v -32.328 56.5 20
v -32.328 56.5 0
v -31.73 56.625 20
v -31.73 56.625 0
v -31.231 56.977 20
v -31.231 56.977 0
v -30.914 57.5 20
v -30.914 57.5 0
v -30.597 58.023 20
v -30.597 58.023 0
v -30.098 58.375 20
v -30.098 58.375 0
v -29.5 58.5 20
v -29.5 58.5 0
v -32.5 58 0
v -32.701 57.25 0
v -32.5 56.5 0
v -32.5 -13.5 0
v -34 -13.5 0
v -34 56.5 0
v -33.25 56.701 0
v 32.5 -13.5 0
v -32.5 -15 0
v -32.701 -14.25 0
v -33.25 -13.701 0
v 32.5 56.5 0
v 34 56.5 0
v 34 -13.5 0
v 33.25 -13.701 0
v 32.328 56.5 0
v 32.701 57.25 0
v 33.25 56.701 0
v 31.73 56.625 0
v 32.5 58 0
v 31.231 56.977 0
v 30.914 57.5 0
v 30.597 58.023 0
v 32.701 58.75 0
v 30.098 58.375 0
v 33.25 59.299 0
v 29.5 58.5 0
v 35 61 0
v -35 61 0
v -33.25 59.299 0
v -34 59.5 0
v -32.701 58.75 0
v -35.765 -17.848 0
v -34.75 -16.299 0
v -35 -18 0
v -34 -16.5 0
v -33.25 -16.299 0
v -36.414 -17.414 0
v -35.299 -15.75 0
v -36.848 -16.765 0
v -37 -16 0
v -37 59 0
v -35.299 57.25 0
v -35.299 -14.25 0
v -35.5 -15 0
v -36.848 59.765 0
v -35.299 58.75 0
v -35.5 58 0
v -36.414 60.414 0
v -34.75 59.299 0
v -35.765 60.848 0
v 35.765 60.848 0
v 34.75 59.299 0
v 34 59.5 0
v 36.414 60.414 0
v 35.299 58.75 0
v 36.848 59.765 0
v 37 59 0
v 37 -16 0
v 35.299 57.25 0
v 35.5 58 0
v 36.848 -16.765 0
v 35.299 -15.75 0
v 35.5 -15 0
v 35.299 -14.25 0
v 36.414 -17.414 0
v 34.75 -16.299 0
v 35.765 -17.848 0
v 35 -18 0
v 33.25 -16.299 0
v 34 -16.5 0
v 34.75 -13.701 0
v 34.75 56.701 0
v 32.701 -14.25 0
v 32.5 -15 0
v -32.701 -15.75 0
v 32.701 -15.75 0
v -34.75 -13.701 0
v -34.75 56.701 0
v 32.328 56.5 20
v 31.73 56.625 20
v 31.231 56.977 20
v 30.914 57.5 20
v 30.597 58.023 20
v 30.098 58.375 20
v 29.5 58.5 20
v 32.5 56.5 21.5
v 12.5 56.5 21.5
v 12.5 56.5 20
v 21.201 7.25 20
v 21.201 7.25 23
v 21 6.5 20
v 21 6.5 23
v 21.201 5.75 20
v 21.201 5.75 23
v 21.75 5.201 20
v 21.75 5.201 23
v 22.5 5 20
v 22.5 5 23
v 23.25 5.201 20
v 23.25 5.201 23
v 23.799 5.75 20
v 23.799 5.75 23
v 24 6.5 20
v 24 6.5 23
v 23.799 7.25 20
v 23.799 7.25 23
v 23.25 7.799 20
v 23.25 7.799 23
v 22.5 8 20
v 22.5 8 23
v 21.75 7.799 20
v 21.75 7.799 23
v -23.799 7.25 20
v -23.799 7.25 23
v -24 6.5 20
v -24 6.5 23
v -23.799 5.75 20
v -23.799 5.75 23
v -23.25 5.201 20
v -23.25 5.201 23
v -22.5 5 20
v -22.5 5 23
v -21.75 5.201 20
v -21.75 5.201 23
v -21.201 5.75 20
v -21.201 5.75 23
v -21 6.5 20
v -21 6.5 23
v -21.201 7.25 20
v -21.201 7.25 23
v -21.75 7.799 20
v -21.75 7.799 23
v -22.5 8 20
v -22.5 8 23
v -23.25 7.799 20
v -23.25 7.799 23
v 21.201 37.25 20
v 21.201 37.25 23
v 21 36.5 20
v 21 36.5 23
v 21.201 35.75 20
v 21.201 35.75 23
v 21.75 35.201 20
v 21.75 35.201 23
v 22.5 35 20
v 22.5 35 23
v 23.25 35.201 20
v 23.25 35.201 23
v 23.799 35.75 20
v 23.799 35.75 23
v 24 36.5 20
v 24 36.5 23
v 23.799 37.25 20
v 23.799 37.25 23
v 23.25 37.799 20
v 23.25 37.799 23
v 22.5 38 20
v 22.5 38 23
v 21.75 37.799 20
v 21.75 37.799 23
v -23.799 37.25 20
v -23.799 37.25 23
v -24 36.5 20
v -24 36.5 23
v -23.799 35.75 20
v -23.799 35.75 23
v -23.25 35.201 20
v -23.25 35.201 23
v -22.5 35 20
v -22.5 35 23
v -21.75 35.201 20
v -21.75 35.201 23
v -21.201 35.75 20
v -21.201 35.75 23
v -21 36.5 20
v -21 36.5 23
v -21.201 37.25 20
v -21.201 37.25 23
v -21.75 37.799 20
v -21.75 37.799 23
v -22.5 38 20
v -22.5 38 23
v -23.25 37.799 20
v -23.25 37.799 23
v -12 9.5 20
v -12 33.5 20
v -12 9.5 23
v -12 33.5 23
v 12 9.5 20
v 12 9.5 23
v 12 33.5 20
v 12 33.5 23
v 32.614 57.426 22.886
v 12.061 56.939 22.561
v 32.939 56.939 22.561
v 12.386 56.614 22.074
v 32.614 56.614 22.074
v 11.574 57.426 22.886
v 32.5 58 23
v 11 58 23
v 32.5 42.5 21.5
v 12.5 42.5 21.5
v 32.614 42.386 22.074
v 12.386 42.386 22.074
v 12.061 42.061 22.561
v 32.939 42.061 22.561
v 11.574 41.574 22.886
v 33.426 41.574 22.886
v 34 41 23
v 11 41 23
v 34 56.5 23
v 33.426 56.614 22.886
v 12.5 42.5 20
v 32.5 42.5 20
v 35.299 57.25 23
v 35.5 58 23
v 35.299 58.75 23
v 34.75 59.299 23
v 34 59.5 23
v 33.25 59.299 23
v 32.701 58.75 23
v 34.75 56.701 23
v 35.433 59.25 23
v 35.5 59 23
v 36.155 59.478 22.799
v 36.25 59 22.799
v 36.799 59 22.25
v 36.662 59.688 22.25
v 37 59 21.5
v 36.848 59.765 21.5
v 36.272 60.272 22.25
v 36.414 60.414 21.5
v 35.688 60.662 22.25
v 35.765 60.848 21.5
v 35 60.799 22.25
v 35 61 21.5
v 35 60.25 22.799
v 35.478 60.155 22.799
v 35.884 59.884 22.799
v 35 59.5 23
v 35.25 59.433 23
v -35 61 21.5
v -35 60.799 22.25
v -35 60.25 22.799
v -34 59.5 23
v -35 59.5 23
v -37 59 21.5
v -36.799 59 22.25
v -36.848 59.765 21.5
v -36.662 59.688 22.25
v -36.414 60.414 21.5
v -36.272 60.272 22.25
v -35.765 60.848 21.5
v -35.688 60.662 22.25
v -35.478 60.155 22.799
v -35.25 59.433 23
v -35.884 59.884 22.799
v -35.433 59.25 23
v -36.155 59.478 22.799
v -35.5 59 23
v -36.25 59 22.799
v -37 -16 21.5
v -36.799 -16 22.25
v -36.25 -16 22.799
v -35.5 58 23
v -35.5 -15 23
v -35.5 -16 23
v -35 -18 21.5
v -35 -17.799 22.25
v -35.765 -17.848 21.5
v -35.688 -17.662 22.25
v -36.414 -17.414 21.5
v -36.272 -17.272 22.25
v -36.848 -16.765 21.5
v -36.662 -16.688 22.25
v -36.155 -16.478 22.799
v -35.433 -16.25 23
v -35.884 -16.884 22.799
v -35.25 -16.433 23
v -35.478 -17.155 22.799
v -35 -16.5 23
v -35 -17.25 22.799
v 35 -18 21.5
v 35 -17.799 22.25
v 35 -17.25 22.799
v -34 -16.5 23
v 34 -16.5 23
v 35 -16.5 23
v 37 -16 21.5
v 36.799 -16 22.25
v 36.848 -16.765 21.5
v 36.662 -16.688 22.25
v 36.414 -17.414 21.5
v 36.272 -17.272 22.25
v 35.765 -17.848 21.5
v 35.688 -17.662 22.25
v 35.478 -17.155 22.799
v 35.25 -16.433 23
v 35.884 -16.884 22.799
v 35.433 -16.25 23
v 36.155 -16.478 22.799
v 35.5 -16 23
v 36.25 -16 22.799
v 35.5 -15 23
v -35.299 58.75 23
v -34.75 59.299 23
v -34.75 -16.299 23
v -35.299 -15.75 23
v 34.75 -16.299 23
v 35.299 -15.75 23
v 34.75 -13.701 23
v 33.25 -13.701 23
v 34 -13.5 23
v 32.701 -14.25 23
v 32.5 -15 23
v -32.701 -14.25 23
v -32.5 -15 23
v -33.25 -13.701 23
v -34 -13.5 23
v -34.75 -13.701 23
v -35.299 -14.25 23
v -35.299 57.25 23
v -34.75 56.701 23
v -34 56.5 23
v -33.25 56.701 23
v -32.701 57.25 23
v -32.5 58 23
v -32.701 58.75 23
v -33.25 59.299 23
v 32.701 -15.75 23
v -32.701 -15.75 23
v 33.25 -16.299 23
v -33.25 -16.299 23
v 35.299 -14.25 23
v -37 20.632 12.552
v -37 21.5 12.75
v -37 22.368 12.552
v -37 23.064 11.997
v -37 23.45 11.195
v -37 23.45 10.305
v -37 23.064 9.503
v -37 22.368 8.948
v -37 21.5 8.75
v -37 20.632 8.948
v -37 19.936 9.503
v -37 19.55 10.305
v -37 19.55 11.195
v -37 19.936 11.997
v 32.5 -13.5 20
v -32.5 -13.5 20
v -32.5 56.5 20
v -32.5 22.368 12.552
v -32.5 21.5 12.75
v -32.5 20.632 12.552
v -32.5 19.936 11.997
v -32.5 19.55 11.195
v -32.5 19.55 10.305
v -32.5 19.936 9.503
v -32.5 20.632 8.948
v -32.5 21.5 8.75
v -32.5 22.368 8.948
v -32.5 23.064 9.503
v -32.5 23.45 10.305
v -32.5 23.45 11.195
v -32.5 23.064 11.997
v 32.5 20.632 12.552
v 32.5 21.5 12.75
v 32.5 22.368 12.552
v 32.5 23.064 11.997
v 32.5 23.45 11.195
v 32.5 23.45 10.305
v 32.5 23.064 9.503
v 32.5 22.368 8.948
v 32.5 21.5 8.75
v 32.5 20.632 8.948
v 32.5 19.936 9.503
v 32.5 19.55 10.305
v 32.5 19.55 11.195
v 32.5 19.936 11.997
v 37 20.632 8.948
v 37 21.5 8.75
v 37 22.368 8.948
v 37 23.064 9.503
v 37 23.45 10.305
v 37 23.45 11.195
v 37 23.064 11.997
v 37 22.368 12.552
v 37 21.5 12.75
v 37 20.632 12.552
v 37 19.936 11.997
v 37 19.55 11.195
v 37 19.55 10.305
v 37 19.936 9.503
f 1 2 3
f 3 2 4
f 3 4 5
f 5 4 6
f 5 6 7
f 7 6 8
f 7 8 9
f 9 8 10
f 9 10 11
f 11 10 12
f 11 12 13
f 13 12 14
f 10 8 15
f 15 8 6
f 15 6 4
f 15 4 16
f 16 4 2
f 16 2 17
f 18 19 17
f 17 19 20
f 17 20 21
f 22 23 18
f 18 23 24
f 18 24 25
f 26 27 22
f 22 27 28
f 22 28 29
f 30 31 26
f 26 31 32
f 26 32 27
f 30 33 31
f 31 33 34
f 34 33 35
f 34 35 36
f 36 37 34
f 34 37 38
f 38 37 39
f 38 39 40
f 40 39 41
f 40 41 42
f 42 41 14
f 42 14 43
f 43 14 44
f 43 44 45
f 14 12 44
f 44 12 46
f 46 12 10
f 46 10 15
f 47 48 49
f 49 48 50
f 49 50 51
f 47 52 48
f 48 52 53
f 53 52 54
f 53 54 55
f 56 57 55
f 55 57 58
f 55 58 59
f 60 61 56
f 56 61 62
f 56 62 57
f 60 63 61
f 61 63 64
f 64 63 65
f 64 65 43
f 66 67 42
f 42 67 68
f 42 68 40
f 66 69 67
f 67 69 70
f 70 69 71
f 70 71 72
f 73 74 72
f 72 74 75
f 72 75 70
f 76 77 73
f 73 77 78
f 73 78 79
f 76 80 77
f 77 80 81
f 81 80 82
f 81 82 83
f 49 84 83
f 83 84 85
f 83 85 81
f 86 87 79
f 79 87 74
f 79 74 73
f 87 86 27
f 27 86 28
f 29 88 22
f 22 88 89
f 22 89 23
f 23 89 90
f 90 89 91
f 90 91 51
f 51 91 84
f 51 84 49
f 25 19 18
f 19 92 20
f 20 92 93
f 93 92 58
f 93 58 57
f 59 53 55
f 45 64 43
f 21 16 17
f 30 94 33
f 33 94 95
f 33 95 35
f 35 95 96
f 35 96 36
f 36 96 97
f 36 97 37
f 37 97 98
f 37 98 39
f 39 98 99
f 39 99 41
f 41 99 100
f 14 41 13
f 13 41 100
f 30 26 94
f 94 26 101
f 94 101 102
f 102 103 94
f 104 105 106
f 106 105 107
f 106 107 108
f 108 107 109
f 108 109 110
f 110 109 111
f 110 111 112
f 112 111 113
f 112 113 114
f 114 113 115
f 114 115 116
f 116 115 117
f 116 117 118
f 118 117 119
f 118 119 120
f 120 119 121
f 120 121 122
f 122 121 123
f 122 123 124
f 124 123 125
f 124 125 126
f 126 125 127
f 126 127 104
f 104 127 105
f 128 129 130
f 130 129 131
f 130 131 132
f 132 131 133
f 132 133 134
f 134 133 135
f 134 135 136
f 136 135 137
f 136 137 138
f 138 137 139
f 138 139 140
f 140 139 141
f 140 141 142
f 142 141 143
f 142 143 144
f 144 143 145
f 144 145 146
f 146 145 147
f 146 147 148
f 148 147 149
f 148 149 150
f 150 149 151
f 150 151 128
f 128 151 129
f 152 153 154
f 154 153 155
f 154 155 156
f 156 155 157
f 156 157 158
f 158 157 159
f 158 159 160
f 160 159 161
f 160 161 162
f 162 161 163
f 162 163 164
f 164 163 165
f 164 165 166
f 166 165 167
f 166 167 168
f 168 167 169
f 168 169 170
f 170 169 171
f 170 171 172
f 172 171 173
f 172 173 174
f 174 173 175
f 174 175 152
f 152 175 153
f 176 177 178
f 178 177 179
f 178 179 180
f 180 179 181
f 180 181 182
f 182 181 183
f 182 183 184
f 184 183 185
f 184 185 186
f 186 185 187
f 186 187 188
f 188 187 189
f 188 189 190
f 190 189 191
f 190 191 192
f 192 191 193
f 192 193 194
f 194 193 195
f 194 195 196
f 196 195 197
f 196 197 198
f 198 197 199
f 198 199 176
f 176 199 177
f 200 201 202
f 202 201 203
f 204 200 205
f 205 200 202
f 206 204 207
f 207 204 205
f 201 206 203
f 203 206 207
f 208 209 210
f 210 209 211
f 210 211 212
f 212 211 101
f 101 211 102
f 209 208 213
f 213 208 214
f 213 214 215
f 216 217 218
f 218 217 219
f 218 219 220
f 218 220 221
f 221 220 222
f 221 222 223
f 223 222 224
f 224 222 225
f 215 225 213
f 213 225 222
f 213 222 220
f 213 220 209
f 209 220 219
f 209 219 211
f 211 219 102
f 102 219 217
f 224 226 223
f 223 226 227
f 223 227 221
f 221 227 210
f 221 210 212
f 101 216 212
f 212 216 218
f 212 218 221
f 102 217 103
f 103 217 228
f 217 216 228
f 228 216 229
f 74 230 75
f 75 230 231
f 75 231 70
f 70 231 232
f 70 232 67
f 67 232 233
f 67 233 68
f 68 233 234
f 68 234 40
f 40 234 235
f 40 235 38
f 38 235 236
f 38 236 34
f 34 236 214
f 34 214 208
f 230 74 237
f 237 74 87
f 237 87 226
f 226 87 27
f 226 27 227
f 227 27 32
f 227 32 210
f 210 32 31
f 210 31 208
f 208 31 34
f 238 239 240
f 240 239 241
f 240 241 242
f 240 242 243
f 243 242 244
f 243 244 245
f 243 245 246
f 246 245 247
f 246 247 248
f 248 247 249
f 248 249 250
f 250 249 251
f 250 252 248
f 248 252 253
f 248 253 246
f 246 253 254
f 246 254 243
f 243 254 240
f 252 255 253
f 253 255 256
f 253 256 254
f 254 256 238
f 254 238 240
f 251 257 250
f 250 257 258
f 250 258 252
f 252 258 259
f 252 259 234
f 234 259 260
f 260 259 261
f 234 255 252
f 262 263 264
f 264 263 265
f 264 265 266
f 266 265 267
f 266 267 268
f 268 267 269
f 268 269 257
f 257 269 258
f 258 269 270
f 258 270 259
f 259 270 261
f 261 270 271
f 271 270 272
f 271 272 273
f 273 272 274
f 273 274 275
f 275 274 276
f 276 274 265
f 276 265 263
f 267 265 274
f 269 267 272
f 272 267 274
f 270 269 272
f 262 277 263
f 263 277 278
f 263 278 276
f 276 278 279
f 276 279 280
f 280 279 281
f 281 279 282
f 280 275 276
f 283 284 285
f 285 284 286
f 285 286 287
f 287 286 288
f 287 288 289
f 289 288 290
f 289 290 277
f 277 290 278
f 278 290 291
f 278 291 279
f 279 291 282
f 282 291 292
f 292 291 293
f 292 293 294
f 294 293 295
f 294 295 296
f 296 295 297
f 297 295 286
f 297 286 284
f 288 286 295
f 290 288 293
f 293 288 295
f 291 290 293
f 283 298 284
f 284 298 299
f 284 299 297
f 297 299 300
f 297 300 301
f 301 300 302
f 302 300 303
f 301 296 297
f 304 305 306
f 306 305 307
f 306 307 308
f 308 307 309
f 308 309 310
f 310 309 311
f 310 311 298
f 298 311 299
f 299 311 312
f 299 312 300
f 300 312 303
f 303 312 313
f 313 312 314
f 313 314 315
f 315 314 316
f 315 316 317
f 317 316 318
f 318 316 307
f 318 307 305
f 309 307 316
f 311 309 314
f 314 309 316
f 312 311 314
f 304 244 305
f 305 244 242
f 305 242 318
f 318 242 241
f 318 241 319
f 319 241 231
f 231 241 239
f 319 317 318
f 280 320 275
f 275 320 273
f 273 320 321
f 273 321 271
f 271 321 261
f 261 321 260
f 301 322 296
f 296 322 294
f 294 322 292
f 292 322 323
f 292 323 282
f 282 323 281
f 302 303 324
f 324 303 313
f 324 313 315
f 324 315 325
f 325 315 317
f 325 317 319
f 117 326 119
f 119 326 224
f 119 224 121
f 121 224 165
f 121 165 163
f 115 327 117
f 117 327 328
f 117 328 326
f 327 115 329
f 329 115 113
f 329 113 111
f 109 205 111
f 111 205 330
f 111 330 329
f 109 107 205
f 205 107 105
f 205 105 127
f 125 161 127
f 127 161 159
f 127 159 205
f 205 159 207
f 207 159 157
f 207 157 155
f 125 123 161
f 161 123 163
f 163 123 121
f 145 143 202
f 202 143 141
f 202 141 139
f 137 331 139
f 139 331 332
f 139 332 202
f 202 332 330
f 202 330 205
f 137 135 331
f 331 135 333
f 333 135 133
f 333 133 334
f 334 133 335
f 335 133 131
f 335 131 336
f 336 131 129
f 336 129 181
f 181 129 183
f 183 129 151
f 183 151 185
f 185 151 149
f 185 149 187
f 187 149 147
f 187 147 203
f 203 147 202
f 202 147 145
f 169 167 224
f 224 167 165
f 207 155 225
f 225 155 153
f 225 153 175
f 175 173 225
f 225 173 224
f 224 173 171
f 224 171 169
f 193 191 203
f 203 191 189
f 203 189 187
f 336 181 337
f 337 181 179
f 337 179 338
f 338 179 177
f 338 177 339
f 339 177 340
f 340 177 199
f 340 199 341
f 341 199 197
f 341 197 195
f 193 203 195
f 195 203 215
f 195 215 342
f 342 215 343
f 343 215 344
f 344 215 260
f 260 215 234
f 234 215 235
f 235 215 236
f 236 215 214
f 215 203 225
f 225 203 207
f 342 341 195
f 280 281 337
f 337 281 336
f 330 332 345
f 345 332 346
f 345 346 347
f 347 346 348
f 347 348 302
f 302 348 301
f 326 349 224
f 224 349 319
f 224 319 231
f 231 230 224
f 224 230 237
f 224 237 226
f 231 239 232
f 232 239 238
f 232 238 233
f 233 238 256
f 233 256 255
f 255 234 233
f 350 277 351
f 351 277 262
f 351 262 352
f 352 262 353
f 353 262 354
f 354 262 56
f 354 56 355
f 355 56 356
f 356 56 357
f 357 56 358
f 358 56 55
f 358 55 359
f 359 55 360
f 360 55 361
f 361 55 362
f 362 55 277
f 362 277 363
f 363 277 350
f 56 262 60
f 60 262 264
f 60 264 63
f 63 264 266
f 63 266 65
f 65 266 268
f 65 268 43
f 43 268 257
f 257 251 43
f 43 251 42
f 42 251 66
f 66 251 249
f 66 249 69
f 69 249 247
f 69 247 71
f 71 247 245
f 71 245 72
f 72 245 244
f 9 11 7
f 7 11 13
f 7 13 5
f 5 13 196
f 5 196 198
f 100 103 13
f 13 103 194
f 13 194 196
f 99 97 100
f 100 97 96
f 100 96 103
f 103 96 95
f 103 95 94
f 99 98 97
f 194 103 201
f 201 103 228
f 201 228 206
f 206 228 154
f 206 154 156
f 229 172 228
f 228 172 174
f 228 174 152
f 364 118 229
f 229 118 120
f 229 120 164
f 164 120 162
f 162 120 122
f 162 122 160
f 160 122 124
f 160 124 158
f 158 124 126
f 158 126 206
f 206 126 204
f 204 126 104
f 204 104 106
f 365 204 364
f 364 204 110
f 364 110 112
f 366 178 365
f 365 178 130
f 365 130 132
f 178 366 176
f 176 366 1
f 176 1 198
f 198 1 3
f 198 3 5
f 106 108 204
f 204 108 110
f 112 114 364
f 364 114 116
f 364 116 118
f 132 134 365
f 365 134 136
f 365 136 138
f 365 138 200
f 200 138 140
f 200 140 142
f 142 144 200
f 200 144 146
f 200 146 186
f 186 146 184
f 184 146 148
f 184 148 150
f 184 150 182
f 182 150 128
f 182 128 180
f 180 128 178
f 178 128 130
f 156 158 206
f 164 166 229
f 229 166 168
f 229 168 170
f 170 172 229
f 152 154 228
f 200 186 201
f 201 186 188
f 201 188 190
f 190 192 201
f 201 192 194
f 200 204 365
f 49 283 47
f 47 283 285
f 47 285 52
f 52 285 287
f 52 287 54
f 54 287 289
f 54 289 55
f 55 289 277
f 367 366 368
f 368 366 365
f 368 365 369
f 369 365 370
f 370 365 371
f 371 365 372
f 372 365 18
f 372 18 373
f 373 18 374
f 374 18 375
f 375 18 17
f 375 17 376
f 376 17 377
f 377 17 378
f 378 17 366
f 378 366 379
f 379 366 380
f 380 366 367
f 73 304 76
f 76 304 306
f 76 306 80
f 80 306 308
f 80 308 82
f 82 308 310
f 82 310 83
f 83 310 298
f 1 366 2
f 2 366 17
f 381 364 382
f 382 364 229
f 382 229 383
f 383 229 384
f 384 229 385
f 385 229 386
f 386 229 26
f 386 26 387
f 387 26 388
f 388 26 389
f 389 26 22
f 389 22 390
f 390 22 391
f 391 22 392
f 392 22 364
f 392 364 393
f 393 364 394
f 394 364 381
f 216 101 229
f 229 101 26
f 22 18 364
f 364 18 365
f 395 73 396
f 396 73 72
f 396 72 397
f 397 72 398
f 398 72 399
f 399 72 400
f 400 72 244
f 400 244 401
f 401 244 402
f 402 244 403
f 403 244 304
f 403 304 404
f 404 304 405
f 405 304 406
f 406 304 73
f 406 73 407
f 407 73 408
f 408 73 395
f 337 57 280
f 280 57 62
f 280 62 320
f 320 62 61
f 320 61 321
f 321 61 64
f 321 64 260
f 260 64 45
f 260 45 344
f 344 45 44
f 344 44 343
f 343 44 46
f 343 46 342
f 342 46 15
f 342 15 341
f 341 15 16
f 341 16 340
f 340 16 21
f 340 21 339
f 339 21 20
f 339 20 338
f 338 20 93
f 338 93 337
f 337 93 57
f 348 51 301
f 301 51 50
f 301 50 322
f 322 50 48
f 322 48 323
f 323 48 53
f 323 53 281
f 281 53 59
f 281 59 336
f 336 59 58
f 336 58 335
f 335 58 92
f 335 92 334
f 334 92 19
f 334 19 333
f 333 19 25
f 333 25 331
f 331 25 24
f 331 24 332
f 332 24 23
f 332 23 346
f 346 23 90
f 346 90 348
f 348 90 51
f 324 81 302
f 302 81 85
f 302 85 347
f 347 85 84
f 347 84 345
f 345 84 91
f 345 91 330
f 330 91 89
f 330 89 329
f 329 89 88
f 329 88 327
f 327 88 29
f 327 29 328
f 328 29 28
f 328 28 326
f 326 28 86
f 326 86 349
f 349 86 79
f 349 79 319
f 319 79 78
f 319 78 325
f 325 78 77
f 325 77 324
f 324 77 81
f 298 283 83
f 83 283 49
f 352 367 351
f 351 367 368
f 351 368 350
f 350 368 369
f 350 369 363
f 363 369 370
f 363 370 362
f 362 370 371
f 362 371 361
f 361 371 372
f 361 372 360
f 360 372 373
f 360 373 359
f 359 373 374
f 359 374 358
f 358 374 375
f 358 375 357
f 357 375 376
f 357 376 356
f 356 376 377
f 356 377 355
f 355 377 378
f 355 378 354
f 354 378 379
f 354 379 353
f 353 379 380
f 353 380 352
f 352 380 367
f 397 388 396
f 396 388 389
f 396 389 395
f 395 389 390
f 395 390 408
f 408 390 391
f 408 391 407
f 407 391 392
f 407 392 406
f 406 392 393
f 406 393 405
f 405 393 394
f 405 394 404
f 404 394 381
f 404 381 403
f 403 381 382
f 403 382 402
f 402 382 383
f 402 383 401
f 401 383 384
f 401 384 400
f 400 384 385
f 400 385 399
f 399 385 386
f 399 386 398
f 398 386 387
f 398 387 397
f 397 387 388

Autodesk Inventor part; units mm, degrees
ref_plane "YZ Plane" through (0, 0, 0) normal (1, 0, 0) x (0, 1, 0)
ref_plane "XZ Plane" through (0, 0, 0) normal (0, 1, 0) x (-1, 0, 0)
ref_plane "XY Plane" through (0, 0, 0) normal (0, 0, 1) x (1, 0, 0)
sketch "Sketch2" plane through (0, 0, 0) normal (0, 0, 1) x (1, 0, 0)
  line L0 (0, -40) -> (0, -15)
  line L1 (0, -15) -> (-34, -15)
  line L2 (-34, -15) -> (-34, 58)
  line L3 (-34, 58) -> (34, 58)
  line L4 (34, 58) -> (34, -15)
  line L5 (34, -15) -> (0, -15)
  circle A0 centre (-34, 58) radius 1.5
  circle A1 centre (34, 58) radius 1.5
  circle A2 centre (-34, -15) radius 1.5
  circle A3 centre (34, -15) radius 1.5
  line L6 (32.5, 56.5) -> (-32.5, 56.5)
  line L7 (-32.5, 56.5) -> (-32.5, -13.5)
  line L8 (-32.5, -13.5) -> (0, -13.5)
  line L9 (0, -13.5) -> (32.5, -13.5)
  line L10 (32.5, -13.5) -> (32.5, 56.5)
  line L11 (37, -18) -> (37, 61)
  line L12 (37, 61) -> (-37, 61)
  line L13 (-37, 61) -> (-37, -18)
  line L14 (-37, -18) -> (0, -18)
  line L15 (0, -18) -> (37, -18)
  point P0 (0, 0)
  dimension "d0" = 25
  dimension "d1" = 34
  dimension "d3" = 68
  dimension "d4" = 3
  dimension "d5" = 3
  dimension "d6" = 3
  dimension "d11" = 1.5
  dimension "d13" = 3
extrude "Extrusion1" add sketch "Sketch2" along normal blind 20 contours L1 A2 L2 A0 L3 A1 L4 A3 L5 | L15 L14 L13 L12 L11
fillet "Fillet1" radius 2 4 edges at (37, -18, 10) (37, 61, 10) (-37, 61, 10) (-37, -18, 10)
sketch "Sketch3" plane through (0, 0, 20) normal (0, 0, 1) x (1, 0, 0)
  arc A0 (-37, -16) -> (-35, -18) centre (-35, -16) ccw projected
  line L0 (-35, -18) -> (35, -18) projected
  arc A1 (35, -18) -> (37, -16) centre (35, -16) ccw projected
  line L1 (37, -16) -> (37, 59) projected
  arc A2 (37, 59) -> (35, 61) centre (35, 59) ccw projected
  line L2 (35, 61) -> (-35, 61) projected
  arc A3 (-35, 61) -> (-37, 59) centre (-35, 59) ccw projected
  line L3 (-37, 59) -> (-37, -16) projected
  circle A4 centre (34, -15) radius 1.5 projected
  circle A5 centre (-34, -15) radius 1.5 projected
  circle A6 centre (-34, 58) radius 1.5 projected
  line L4 (32.5, 56.5) -> (32.5, -13.5) projected
  line L5 (32.5, -13.5) -> (-32.5, -13.5) projected
  line L6 (-32.5, -13.5) -> (-32.5, 56.5) projected
  line L7 (-32.5, 56.5) -> (32.5, 56.5) projected
  circle A7 centre (34, 58) radius 1.5 projected
  point P0 (0, 0)
extrude "Extrusion2" add sketch "Sketch3" along normal blind 3 contours L3 A3 L2 A2 L1 A1 L0 A0 | L4 L5 L6 L7
fillet "Fillet2" radius 1.5 8 edges at (36.4142, 60.4142, 23) (0, 61, 23) (-36.4142, 60.4142, 23) (-37, 21.5, 23) (-36.4142, -17.4142, 23) (0, -18, 23) (36.4142, -17.4142, 23) (37, 21.5, 23)
sketch "Sketch4" plane through (0, 0, 20) normal (0, 0, -1) x (-1, 0, 0)
  line L0 (-32.5, 56.5) -> (-32.5, -13.5) projected
  line L1 (-32.5, 56.5) -> (-12.5, 56.5)
  line L2 (32.5, 56.5) -> (-32.5, 56.5) projected
  line L3 (-12.5, 56.5) -> (-12.5, 42.5)
  line L4 (-12.5, 42.5) -> (-32.5, 42.5)
  point P0 (0, 0)
  dimension "d18" = 20
  dimension "d19" = 14
extrude "Extrusion3" cut sketch "Sketch4" against normal blind 3
fillet "Fillet3" radius 1.5 4 edges at (12.5, 49.5, 23) (22.5, 56.5, 23) (32.5, 49.5, 23) (22.5, 42.5, 23)
sketch "Sketch6" plane through (0, 0, 23) normal (0, 0, 1) x (1, 0, 0)
  line L0 (34, -16.5) -> (-34, -16.5) projected
  line L1 (-35.5, -15) -> (-35.5, 58) projected
  line L2 (0, 21.5) -> (0, 36.5)
  line L3 (0, 36.5) -> (-15, 36.5)
  line L4 (-15, 36.5) -> (-15, 6.5)
  line L5 (-15, 6.5) -> (15, 6.5)
  line L6 (15, 6.5) -> (15, 36.5)
  line L7 (15, 36.5) -> (0, 36.5)
  line L8 (-12, 33.5) -> (0, 33.5)
  line L9 (0, 33.5) -> (12, 33.5)
  line L10 (12, 33.5) -> (12, 9.5)
  line L11 (12, 9.5) -> (-12, 9.5)
  line L12 (-12, 9.5) -> (-12, 33.5)
  line L13 (-15, 36.5) -> (-22.5, 36.5)
  circle A0 centre (-22.5, 36.5) radius 1.5
  circle A1 centre (-22.5, 6.5) radius 1.5
  circle A2 centre (22.5, 36.5) radius 1.5
  circle A3 centre (22.5, 6.5) radius 1.5
  dimension "d33" = 15
  dimension "d34" = 15
  dimension "d35" = 30
  dimension "d36" = 30
  dimension "d37" = 3
  dimension "d38" = 7.5
  dimension "d39" = 3
  dimension "d40" = 3
extrude "Extrusion5" cut sketch "Sketch6" against normal blind 5 contours L8 L9 L10 L11 L12 | A0 | A1 | A2 | A3
sketch "Sketch7" plane through (0, 0, 0) normal (0, 0, -1) x (-1, 0, 0)
  line L0 (32.5, -13.5) -> (32.5, 56.5) projected
  line L1 (32.5, 56.5) -> (27.5, 56.5)
  line L2 (32.5, 56.5) -> (-32.5, 56.5) projected
  line L3 (27.5, 56.5) -> (29.5, 56.5)
  line L4 (29.5, 56.5) -> (29.5, 58.5)
  line L5 (29.5, 58.5) -> (25.5, 58.5)
  line L6 (25.5, 58.5) -> (25.5, 56.5)
  line L7 (29.5, 58.5) -> (31, 58.5)
  line L8 (31, 58.5) -> (31, 56.5)
  line L9 (25.5, 58.5) -> (24, 58.5)
  line L10 (24, 58.5) -> (24, 56.5)
  line L11 (0, 56.5) -> (0, 48.9008)
  line L12 (-32.5, 56.5) -> (-27.5, 56.5)
  line L13 (-32.5, 56.5) -> (32.5, 56.5)
  line L14 (-27.5, 56.5) -> (-29.5, 56.5)
  line L15 (-29.5, 56.5) -> (-29.5, 58.5)
  line L16 (-29.5, 58.5) -> (-25.5, 58.5)
  line L17 (-25.5, 58.5) -> (-25.5, 56.5)
  line L18 (-29.5, 58.5) -> (-31, 58.5)
  line L19 (-31, 58.5) -> (-31, 56.5)
  line L20 (-25.5, 58.5) -> (-24, 58.5)
  line L21 (-24, 58.5) -> (-24, 56.5)
  line L22 (24, 58.5) -> (-24, 58.5)
  point P0 (0, 0)
  dimension "d44" = 5
  dimension "d45" = 2
  dimension "d46" = 2
  dimension "d47" = 4
  dimension "d48" = 1.5
  dimension "d49" = 1.5
extrude "Extrusion6" cut sketch "Sketch7" against normal up to surface (20 mm away)
fillet "Fillet5" radius 1.5 4 edges at (31, 58.5, 10) (31, 56.5, 10) (-31, 58.5, 10) (-31, 56.5, 10)
sketch "Sketch8" plane through (37, -16, 0) normal (1, 0, 0) x (0, 0, -1)
  line L0 (0, 77) -> (-21.5, 77) projected
  line L1 (-10.75, 77) -> (-10.75, -2)
  line L2 (-21.5, -2) -> (0, -2) projected
  circle A0 centre (-10.75, 37.5) radius 2
  point P0 (0, 16)
  dimension "d54" = 4
extrude "Extrusion7" cut sketch "Sketch8" against normal through all
properties part number "manta ray battery pack"
